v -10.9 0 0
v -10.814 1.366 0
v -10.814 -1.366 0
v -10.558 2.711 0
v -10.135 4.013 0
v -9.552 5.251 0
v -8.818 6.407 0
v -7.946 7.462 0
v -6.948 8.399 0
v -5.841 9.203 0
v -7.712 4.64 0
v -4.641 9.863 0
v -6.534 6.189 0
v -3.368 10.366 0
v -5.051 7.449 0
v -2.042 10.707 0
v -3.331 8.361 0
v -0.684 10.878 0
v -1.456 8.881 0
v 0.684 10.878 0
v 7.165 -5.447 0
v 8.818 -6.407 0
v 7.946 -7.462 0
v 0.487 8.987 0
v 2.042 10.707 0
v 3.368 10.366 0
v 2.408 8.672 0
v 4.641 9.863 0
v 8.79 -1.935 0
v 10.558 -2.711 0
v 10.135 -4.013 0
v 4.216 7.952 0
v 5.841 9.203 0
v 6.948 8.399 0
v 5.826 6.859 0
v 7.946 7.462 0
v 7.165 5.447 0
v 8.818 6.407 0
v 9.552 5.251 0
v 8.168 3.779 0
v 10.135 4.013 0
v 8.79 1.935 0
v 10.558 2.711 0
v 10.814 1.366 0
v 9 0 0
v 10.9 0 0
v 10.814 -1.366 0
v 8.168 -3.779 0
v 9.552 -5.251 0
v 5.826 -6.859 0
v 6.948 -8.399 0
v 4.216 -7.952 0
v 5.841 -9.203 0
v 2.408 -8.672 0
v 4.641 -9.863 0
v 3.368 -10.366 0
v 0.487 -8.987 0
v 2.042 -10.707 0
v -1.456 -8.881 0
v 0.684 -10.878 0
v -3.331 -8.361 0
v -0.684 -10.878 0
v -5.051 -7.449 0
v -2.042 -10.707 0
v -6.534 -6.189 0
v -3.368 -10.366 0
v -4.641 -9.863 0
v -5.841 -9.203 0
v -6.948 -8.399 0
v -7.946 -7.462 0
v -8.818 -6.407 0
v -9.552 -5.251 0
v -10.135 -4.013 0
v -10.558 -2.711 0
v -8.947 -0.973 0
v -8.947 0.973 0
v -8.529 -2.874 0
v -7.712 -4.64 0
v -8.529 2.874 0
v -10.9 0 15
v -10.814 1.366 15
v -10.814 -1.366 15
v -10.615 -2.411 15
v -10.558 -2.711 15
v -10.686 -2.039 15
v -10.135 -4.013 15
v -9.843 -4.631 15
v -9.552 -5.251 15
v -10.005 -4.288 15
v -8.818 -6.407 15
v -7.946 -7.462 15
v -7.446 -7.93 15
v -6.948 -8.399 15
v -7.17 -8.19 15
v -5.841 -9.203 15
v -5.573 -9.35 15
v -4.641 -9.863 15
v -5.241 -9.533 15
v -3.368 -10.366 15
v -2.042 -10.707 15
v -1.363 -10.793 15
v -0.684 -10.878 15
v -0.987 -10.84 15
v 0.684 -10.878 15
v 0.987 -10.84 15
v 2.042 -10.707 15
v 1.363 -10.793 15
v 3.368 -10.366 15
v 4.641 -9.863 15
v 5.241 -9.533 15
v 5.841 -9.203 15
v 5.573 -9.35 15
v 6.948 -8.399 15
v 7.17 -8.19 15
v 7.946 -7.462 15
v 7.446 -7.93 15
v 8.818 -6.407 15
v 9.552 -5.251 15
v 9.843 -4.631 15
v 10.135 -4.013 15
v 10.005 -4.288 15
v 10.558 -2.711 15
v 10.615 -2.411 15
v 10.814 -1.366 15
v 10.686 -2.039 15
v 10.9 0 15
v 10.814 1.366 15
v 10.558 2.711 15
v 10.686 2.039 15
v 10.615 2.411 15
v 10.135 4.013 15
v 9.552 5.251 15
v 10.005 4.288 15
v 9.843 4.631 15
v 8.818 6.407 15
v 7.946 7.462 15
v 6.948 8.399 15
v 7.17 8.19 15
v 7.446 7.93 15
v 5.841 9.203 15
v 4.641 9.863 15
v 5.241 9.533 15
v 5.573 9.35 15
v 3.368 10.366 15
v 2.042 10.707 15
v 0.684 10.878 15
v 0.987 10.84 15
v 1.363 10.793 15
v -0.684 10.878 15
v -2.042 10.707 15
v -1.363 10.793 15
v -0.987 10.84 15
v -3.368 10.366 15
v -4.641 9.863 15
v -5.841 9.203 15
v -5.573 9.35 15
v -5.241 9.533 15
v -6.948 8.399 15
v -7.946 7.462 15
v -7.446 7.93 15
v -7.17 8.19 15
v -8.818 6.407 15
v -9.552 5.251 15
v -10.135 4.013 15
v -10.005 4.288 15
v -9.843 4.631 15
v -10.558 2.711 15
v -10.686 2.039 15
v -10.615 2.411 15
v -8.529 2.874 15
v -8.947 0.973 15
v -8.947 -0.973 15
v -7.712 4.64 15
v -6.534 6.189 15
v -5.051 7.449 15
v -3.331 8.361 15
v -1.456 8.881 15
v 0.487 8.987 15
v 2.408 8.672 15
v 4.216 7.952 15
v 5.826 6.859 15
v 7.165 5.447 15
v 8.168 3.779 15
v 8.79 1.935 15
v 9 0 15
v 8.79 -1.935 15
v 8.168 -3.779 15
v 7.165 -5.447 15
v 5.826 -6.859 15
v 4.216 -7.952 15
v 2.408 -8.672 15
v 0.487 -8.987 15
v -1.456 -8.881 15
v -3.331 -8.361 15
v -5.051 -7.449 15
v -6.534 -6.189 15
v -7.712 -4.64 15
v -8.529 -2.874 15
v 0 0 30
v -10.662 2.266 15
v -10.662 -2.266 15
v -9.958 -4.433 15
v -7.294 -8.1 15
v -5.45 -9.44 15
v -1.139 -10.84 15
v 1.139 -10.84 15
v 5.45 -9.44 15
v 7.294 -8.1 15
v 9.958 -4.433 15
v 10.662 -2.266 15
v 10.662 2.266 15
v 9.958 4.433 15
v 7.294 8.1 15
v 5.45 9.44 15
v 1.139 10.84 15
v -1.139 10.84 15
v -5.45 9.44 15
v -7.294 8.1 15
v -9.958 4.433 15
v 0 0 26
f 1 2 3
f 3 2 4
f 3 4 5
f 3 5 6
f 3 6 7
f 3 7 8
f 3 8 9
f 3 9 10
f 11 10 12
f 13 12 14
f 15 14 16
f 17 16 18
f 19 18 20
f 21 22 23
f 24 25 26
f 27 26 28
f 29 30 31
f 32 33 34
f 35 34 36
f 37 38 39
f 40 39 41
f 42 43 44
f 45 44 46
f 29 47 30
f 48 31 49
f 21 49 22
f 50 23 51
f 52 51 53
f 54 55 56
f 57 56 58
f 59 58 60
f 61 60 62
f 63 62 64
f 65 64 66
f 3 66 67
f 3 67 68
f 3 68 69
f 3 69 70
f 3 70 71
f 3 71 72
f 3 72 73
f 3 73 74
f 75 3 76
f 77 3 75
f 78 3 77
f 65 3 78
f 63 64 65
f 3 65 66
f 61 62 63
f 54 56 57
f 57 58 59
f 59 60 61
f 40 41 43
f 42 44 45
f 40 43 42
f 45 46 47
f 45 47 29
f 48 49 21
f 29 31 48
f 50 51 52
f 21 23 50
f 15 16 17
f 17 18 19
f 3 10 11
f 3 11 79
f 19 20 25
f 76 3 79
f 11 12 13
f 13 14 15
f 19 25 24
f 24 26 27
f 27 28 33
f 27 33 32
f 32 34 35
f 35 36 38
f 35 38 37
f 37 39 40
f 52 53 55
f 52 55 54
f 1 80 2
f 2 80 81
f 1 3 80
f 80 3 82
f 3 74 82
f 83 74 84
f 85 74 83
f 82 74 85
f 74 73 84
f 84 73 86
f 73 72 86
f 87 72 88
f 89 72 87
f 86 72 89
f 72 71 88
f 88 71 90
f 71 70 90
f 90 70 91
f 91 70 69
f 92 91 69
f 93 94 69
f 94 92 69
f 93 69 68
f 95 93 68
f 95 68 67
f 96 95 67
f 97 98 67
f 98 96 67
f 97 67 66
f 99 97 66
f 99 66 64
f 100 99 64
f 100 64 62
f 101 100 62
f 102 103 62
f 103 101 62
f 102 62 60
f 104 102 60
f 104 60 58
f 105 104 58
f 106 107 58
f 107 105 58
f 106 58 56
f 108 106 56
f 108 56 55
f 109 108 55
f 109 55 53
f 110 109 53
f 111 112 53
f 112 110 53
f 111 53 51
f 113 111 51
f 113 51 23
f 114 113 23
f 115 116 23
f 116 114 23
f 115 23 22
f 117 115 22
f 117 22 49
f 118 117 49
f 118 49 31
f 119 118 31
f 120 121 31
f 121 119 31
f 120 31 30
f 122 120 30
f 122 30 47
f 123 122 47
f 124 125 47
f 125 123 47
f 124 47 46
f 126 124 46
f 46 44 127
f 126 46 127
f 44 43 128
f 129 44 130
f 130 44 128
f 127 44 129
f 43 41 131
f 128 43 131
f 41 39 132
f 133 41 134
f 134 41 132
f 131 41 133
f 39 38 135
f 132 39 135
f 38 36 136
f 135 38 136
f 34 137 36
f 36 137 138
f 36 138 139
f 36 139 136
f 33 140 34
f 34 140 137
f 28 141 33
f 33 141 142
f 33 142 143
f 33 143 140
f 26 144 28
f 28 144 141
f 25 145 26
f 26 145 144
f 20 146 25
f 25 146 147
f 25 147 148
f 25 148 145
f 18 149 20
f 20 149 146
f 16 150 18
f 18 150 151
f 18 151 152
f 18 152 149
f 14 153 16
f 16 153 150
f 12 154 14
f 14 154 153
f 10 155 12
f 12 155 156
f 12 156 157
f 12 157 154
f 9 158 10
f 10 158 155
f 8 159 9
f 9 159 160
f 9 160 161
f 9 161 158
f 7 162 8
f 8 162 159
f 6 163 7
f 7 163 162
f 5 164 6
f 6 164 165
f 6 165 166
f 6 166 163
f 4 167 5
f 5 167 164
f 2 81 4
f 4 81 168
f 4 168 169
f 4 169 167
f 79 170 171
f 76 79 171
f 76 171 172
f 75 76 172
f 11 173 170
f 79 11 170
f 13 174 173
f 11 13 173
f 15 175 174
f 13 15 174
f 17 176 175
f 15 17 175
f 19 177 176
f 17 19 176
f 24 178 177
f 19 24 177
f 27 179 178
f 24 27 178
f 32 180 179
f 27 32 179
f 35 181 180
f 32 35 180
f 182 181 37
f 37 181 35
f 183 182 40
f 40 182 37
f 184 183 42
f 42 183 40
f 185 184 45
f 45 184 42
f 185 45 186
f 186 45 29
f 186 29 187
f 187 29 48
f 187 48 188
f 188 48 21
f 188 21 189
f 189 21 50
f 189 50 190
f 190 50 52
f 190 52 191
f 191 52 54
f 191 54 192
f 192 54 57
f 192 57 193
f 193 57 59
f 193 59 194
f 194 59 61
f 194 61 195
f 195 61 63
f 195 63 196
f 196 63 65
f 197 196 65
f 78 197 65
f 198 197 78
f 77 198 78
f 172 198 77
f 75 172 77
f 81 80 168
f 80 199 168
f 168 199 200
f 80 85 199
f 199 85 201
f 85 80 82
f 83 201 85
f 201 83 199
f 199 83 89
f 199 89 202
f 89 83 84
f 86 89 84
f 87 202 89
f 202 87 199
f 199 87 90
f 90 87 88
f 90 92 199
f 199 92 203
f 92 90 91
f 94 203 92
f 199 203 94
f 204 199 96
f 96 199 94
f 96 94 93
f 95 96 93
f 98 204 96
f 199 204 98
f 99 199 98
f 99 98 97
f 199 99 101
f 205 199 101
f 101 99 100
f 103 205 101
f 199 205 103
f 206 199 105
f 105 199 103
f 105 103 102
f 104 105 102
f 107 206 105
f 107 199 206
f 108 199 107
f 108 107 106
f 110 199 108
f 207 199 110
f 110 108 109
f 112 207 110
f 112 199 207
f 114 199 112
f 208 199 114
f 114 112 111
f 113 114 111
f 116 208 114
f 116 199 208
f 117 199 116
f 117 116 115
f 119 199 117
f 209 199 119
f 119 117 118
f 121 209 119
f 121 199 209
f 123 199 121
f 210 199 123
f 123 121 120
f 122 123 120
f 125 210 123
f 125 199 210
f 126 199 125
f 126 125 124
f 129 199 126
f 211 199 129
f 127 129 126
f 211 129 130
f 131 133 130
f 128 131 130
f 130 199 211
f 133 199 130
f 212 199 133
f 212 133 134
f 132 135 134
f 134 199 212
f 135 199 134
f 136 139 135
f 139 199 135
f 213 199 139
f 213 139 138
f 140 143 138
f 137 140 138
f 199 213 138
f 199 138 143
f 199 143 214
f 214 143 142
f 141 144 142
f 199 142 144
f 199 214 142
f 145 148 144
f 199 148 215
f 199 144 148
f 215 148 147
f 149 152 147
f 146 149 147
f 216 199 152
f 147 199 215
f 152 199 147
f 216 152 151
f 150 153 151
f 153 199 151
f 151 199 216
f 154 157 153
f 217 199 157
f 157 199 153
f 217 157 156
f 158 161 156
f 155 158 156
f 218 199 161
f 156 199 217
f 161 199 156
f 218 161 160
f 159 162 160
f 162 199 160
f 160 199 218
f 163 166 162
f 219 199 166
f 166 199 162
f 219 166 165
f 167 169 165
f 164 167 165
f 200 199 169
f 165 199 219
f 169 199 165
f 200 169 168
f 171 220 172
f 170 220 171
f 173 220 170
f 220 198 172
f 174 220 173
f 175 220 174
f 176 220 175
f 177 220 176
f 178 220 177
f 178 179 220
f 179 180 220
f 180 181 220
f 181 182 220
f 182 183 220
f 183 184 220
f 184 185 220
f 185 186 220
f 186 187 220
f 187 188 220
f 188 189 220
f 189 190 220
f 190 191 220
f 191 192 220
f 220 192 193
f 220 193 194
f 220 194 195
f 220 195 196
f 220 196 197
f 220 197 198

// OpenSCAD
tube_thickness = 1.9;
cylinder_quality = 50;

inner_diameter = 18;
outer_diameter = inner_diameter + (tube_thickness * 2);
rad_out = outer_diameter / 2;
rad_in = inner_diameter / 2;
hi = 15;

union() {
difference()
{
   cylinder(r = rad_out,h = hi, $fn=cylinder_quality);
   translate([0,0,-0.1])	cylinder(r = rad_in, h =hi + 0.2);
}

difference() {
  translate([0,0,hi])
    cylinder(r1=rad_out, r2=0, h=15);
  translate([0,0,hi])
    cylinder(r1=rad_in, r2=0, h=11);
}   
}
